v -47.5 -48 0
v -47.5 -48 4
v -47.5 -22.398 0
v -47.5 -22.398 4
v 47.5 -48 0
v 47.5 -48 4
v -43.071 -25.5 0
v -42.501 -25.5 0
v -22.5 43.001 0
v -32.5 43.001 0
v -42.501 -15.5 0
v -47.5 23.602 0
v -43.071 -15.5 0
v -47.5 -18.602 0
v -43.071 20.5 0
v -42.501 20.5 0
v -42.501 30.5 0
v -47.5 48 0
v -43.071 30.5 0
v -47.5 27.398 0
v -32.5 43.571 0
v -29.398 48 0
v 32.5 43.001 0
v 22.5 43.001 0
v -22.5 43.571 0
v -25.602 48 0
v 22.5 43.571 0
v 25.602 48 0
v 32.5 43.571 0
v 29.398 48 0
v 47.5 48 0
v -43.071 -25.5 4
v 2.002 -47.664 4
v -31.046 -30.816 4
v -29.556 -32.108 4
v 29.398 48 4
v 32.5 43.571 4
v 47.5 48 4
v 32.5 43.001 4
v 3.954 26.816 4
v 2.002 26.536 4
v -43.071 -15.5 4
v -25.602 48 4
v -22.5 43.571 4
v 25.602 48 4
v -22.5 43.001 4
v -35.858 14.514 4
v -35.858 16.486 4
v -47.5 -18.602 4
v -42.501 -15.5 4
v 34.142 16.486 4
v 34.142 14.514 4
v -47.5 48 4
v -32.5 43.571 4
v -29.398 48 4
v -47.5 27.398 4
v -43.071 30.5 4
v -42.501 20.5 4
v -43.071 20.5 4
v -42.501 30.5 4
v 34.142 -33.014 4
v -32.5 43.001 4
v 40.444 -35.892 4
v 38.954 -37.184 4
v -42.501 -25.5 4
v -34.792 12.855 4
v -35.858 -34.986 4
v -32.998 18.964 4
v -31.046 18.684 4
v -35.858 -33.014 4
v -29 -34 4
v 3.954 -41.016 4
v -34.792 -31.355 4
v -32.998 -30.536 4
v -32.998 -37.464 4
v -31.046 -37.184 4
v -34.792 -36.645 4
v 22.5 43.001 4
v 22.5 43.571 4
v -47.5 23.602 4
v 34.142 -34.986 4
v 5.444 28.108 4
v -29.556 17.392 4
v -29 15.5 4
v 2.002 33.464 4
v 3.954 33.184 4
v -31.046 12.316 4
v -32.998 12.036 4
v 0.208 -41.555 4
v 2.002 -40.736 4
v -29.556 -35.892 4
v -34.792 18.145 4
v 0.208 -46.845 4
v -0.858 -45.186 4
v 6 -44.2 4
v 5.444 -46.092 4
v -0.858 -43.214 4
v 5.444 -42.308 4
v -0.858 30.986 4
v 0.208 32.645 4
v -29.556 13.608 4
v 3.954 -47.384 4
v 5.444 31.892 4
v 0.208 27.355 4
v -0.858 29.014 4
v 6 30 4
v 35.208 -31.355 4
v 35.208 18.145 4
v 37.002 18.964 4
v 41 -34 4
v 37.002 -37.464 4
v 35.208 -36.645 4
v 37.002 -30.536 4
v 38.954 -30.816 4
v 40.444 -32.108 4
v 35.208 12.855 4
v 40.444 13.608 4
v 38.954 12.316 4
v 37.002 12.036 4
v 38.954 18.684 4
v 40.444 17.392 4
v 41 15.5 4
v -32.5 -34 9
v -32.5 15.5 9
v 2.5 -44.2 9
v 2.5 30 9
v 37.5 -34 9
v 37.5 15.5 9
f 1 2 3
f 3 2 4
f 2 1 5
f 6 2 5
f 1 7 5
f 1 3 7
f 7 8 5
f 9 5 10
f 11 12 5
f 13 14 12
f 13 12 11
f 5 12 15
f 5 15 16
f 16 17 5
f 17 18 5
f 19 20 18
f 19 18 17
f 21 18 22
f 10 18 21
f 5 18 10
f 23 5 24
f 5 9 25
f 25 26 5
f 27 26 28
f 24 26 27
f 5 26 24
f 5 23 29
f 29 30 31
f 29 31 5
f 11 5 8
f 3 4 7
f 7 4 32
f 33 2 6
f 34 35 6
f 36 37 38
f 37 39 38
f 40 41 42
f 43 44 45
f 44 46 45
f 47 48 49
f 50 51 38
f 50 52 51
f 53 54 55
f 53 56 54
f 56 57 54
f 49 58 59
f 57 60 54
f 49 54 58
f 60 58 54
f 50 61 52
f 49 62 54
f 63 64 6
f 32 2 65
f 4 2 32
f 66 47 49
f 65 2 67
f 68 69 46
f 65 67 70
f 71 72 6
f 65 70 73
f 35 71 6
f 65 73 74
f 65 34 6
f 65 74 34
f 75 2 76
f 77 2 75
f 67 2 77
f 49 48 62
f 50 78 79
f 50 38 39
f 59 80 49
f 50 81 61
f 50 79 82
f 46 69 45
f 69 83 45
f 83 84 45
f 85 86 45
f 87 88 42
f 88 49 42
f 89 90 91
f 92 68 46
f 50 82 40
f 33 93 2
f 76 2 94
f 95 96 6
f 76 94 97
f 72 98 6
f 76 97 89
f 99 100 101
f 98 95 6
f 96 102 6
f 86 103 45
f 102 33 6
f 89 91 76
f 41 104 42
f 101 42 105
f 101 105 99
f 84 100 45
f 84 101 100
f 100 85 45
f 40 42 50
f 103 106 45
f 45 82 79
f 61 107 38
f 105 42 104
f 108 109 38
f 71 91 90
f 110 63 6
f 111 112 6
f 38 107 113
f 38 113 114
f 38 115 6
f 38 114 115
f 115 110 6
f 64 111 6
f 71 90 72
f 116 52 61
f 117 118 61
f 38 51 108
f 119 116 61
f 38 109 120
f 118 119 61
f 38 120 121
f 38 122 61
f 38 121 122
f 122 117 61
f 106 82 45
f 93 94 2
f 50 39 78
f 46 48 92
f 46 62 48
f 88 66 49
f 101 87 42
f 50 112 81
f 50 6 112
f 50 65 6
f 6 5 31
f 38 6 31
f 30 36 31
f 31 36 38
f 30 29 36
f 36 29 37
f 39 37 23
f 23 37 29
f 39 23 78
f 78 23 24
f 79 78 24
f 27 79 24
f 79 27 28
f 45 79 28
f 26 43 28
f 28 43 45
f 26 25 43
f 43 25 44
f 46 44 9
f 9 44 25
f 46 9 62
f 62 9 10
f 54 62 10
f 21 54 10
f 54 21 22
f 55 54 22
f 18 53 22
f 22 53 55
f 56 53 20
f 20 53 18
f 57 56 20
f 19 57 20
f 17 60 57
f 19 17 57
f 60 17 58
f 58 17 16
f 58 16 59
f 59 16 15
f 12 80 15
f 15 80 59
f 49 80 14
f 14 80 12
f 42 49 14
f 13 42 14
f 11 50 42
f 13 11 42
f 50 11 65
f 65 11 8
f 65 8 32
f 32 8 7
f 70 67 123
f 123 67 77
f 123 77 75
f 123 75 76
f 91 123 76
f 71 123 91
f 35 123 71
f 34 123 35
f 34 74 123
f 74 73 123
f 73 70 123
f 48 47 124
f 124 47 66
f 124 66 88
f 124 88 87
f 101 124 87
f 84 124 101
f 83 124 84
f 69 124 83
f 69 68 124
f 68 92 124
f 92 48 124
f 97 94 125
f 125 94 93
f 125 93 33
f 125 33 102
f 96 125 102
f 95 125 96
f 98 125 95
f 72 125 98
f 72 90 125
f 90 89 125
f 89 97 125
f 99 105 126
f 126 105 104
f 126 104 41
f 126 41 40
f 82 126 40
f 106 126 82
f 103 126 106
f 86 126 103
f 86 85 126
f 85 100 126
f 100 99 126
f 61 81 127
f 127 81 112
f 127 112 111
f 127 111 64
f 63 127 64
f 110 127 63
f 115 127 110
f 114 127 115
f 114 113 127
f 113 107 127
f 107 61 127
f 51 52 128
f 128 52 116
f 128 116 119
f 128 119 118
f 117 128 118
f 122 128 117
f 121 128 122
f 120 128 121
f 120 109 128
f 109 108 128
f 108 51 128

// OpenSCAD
// file: shapes.scad
/*
 *  OpenSCAD Shapes Library (www.openscad.at)
 *  Copyright (C) 2009  Catarina Mota <clifford@clifford.at>
 *
 *  This program is free software; you can redistribute it and/or modify
 *  it under the terms of the GNU General Public License as published by
 *  the Free Software Foundation; either version 2 of the License, or
 *  (at your option) any later version.
 *
 *  This program is distributed in the hope that it will be useful,
 *  but WITHOUT ANY WARRANTY; without even the implied warranty of
 *  MERCHANTABILITY or FITNESS FOR A PARTICULAR PURPOSE.  See the
 *  GNU General Public License for more details.
 *
 *  You should have received a copy of the GNU General Public License
 *  along with this program; if not, write to the Free Software
 *  Foundation, Inc., 59 Temple Place, Suite 330, Boston, MA  02111-1307  USA
 *
*/


//box(width, height, depth);
//roundedBox(width, height, depth, factor);
//cone(height, radius);
//oval(width, height, depth);
//tube(height, radius, wall);
//ovalTube(width, height, depth, wall);
//hexagon(height, depth);
//octagon(height, depth);
//dodecagon(height, depth);
//hexagram(height, depth);
//rightTriangle(adjacent, opposite, depth);
//equiTriangle(side, depth);
//12ptStar(height, depth);

//----------------------

//roundedBox(120, 60, 3, 8);

//----------------------

module box(w,h,d) {
	scale ([w,h,d]) cube(1, true);
}

module roundedBox(w,h,d,f){
	difference(){
		box(w,h,d);
		translate([-w/2,h/2,0]) cube(w/(f/2),true);
		translate([w/2,h/2,0]) cube(w/(f/2),true);
		translate([-w/2,-h/2,0]) cube(w/(f/2),true);
		translate([w/2,-h/2,0]) cube(w/(f/2),true);
	}
	translate([-w/2+w/f,h/2-w/f,-d/2]) cylinder(d,w/f, w/f);
	translate([w/2-w/f,h/2-w/f,-d/2]) cylinder(d,w/f, w/f);
	translate([-w/2+w/f,-h/2+w/f,-d/2]) cylinder(d,w/f, w/f);
	translate([w/2-w/f,-h/2+w/f,-d/2]) cylinder(d,w/f, w/f);
}

module cone(height, radius) {
		cylinder(height, radius, 0);
}

module oval(w,h,d) {
	scale ([w/100, h/100, 1]) cylinder(d, 50, 50);
}

module tube(height, radius, wall) {
	difference(){
		cylinder(height, radius, radius);
		cylinder(height, radius-wall, radius-wall);
	}
}

module ovalTube(w,h,d,wall) {
	difference(){
		scale ([w/100, h/100, 1]) cylinder(d, 50, 50);
		scale ([w/100, h/100, 1]) cylinder(d, 50-wall, 50-wall);
	}
}

module hexagon(height, depth) {
	boxWidth=height/1.75;
		union(){
			box(boxWidth, height, depth);
			rotate([0,0,60]) box(boxWidth, height, depth);
			rotate([0,0,-60]) box(boxWidth, height, depth);
		}
}

module octagon(height, depth) {
	intersection(){
		box(height, height, depth);
		rotate([0,0,45]) box(height, height, depth);
	}
}

module dodecagon(height, depth) {
	intersection(){
		hexagon(height, depth);
		rotate([0,0,90]) hexagon(height, depth);
	}
}

module hexagram(height, depth) {
	boxWidth=height/1.75;
	intersection(){
		box(height, boxWidth, depth);
		rotate([0,0,60]) box(height, boxWidth, depth);
	}
	intersection(){
		box(height, boxWidth, depth);
		rotate([0,0,-60]) box(height, boxWidth, depth);
	}
	intersection(){
		rotate([0,0,60]) box(height, boxWidth, depth);
		rotate([0,0,-60]) box(height, boxWidth, depth);
	}
}

module rightTriangle(adjacent, opposite, depth) {
	difference(){
		translate([-adjacent/2,opposite/2,0]) box(adjacent, opposite, depth);
		translate([-adjacent,0,0]){
			rotate([0,0,atan(opposite/adjacent)]) dislocateBox(adjacent*4, opposite, depth);
		}
	}
}

module equiTriangle(side, depth) {
	difference(){
		translate([-side/2,side/2,0]) box(side, side, depth);
		rotate([0,0,30]) dislocateBox(side*2, side, depth);
		translate([-side,0,0]){
			rotate([0,0,60]) dislocateBox(side*2, side, depth);
		}
	}
}

module 12ptStar(height, depth) {
	starNum=3;
	starAngle=360/starNum;
	for (s=[1:starNum]){
		rotate([0, 0, s*starAngle]) box(height, height, depth);
	}
}

//-----------------------
//MOVES THE ROTATION AXIS OF A BOX FROM ITS CENTER TO THE BOTTOM LEFT CORNER
module dislocateBox(w,h,d){
	translate([w/2,h,0]){
		difference(){
			box(w, h*2, d+1);
			translate([-w,0,0]) box(w, h*2, d+1);
		}
	}
}
// main file
include <shapes.scad>  // using Catarina Mota's shapes library

//build platform
//translate ([-51,-51,-10]) cube ([102,102,5]);

difference ()
{
	translate ([-47.5,-48,0]) cube ([95,96,4]);
	rotate ([90,90,180]) translate ([-2,45.001,25.5]) connector (5);
	rotate ([90,90,180]) translate ([-2,45.001,-20.5]) connector (5);
	rotate ([180,90,180]) translate ([-2,45.501,27.5]) connector (5);
	rotate ([180,90,180]) translate ([-2,45.501,-27.5]) connector (5);
}
translate ([-32.5,-34,4]) cone (5,3.5);
translate ([2.5,-44.2,4]) cone (5,3.5);
translate ([37.5,-34,4]) cone (5,3.5);

translate ([-32.5,15.5,4]) cone (5,3.5);
translate ([2.5,30,4]) cone (5,3.5);
translate ([37.5,15.5,4]) cone (5,3.5);

module connector(length) 
{
difference() 
	{
	cube(size = [length,5,10], center = true);
	translate(v= [0,1,6]) { rotate(a=[55,0,0]) 
		{
		cube(size = [length+2,5,10], center = true);
		}
	}
	translate(v= [0,1,-6]) { rotate(a=[-55,0,0]) 
		{
		cube(size = [length+2,5,10], center = true);
		}
	}
	}
}
